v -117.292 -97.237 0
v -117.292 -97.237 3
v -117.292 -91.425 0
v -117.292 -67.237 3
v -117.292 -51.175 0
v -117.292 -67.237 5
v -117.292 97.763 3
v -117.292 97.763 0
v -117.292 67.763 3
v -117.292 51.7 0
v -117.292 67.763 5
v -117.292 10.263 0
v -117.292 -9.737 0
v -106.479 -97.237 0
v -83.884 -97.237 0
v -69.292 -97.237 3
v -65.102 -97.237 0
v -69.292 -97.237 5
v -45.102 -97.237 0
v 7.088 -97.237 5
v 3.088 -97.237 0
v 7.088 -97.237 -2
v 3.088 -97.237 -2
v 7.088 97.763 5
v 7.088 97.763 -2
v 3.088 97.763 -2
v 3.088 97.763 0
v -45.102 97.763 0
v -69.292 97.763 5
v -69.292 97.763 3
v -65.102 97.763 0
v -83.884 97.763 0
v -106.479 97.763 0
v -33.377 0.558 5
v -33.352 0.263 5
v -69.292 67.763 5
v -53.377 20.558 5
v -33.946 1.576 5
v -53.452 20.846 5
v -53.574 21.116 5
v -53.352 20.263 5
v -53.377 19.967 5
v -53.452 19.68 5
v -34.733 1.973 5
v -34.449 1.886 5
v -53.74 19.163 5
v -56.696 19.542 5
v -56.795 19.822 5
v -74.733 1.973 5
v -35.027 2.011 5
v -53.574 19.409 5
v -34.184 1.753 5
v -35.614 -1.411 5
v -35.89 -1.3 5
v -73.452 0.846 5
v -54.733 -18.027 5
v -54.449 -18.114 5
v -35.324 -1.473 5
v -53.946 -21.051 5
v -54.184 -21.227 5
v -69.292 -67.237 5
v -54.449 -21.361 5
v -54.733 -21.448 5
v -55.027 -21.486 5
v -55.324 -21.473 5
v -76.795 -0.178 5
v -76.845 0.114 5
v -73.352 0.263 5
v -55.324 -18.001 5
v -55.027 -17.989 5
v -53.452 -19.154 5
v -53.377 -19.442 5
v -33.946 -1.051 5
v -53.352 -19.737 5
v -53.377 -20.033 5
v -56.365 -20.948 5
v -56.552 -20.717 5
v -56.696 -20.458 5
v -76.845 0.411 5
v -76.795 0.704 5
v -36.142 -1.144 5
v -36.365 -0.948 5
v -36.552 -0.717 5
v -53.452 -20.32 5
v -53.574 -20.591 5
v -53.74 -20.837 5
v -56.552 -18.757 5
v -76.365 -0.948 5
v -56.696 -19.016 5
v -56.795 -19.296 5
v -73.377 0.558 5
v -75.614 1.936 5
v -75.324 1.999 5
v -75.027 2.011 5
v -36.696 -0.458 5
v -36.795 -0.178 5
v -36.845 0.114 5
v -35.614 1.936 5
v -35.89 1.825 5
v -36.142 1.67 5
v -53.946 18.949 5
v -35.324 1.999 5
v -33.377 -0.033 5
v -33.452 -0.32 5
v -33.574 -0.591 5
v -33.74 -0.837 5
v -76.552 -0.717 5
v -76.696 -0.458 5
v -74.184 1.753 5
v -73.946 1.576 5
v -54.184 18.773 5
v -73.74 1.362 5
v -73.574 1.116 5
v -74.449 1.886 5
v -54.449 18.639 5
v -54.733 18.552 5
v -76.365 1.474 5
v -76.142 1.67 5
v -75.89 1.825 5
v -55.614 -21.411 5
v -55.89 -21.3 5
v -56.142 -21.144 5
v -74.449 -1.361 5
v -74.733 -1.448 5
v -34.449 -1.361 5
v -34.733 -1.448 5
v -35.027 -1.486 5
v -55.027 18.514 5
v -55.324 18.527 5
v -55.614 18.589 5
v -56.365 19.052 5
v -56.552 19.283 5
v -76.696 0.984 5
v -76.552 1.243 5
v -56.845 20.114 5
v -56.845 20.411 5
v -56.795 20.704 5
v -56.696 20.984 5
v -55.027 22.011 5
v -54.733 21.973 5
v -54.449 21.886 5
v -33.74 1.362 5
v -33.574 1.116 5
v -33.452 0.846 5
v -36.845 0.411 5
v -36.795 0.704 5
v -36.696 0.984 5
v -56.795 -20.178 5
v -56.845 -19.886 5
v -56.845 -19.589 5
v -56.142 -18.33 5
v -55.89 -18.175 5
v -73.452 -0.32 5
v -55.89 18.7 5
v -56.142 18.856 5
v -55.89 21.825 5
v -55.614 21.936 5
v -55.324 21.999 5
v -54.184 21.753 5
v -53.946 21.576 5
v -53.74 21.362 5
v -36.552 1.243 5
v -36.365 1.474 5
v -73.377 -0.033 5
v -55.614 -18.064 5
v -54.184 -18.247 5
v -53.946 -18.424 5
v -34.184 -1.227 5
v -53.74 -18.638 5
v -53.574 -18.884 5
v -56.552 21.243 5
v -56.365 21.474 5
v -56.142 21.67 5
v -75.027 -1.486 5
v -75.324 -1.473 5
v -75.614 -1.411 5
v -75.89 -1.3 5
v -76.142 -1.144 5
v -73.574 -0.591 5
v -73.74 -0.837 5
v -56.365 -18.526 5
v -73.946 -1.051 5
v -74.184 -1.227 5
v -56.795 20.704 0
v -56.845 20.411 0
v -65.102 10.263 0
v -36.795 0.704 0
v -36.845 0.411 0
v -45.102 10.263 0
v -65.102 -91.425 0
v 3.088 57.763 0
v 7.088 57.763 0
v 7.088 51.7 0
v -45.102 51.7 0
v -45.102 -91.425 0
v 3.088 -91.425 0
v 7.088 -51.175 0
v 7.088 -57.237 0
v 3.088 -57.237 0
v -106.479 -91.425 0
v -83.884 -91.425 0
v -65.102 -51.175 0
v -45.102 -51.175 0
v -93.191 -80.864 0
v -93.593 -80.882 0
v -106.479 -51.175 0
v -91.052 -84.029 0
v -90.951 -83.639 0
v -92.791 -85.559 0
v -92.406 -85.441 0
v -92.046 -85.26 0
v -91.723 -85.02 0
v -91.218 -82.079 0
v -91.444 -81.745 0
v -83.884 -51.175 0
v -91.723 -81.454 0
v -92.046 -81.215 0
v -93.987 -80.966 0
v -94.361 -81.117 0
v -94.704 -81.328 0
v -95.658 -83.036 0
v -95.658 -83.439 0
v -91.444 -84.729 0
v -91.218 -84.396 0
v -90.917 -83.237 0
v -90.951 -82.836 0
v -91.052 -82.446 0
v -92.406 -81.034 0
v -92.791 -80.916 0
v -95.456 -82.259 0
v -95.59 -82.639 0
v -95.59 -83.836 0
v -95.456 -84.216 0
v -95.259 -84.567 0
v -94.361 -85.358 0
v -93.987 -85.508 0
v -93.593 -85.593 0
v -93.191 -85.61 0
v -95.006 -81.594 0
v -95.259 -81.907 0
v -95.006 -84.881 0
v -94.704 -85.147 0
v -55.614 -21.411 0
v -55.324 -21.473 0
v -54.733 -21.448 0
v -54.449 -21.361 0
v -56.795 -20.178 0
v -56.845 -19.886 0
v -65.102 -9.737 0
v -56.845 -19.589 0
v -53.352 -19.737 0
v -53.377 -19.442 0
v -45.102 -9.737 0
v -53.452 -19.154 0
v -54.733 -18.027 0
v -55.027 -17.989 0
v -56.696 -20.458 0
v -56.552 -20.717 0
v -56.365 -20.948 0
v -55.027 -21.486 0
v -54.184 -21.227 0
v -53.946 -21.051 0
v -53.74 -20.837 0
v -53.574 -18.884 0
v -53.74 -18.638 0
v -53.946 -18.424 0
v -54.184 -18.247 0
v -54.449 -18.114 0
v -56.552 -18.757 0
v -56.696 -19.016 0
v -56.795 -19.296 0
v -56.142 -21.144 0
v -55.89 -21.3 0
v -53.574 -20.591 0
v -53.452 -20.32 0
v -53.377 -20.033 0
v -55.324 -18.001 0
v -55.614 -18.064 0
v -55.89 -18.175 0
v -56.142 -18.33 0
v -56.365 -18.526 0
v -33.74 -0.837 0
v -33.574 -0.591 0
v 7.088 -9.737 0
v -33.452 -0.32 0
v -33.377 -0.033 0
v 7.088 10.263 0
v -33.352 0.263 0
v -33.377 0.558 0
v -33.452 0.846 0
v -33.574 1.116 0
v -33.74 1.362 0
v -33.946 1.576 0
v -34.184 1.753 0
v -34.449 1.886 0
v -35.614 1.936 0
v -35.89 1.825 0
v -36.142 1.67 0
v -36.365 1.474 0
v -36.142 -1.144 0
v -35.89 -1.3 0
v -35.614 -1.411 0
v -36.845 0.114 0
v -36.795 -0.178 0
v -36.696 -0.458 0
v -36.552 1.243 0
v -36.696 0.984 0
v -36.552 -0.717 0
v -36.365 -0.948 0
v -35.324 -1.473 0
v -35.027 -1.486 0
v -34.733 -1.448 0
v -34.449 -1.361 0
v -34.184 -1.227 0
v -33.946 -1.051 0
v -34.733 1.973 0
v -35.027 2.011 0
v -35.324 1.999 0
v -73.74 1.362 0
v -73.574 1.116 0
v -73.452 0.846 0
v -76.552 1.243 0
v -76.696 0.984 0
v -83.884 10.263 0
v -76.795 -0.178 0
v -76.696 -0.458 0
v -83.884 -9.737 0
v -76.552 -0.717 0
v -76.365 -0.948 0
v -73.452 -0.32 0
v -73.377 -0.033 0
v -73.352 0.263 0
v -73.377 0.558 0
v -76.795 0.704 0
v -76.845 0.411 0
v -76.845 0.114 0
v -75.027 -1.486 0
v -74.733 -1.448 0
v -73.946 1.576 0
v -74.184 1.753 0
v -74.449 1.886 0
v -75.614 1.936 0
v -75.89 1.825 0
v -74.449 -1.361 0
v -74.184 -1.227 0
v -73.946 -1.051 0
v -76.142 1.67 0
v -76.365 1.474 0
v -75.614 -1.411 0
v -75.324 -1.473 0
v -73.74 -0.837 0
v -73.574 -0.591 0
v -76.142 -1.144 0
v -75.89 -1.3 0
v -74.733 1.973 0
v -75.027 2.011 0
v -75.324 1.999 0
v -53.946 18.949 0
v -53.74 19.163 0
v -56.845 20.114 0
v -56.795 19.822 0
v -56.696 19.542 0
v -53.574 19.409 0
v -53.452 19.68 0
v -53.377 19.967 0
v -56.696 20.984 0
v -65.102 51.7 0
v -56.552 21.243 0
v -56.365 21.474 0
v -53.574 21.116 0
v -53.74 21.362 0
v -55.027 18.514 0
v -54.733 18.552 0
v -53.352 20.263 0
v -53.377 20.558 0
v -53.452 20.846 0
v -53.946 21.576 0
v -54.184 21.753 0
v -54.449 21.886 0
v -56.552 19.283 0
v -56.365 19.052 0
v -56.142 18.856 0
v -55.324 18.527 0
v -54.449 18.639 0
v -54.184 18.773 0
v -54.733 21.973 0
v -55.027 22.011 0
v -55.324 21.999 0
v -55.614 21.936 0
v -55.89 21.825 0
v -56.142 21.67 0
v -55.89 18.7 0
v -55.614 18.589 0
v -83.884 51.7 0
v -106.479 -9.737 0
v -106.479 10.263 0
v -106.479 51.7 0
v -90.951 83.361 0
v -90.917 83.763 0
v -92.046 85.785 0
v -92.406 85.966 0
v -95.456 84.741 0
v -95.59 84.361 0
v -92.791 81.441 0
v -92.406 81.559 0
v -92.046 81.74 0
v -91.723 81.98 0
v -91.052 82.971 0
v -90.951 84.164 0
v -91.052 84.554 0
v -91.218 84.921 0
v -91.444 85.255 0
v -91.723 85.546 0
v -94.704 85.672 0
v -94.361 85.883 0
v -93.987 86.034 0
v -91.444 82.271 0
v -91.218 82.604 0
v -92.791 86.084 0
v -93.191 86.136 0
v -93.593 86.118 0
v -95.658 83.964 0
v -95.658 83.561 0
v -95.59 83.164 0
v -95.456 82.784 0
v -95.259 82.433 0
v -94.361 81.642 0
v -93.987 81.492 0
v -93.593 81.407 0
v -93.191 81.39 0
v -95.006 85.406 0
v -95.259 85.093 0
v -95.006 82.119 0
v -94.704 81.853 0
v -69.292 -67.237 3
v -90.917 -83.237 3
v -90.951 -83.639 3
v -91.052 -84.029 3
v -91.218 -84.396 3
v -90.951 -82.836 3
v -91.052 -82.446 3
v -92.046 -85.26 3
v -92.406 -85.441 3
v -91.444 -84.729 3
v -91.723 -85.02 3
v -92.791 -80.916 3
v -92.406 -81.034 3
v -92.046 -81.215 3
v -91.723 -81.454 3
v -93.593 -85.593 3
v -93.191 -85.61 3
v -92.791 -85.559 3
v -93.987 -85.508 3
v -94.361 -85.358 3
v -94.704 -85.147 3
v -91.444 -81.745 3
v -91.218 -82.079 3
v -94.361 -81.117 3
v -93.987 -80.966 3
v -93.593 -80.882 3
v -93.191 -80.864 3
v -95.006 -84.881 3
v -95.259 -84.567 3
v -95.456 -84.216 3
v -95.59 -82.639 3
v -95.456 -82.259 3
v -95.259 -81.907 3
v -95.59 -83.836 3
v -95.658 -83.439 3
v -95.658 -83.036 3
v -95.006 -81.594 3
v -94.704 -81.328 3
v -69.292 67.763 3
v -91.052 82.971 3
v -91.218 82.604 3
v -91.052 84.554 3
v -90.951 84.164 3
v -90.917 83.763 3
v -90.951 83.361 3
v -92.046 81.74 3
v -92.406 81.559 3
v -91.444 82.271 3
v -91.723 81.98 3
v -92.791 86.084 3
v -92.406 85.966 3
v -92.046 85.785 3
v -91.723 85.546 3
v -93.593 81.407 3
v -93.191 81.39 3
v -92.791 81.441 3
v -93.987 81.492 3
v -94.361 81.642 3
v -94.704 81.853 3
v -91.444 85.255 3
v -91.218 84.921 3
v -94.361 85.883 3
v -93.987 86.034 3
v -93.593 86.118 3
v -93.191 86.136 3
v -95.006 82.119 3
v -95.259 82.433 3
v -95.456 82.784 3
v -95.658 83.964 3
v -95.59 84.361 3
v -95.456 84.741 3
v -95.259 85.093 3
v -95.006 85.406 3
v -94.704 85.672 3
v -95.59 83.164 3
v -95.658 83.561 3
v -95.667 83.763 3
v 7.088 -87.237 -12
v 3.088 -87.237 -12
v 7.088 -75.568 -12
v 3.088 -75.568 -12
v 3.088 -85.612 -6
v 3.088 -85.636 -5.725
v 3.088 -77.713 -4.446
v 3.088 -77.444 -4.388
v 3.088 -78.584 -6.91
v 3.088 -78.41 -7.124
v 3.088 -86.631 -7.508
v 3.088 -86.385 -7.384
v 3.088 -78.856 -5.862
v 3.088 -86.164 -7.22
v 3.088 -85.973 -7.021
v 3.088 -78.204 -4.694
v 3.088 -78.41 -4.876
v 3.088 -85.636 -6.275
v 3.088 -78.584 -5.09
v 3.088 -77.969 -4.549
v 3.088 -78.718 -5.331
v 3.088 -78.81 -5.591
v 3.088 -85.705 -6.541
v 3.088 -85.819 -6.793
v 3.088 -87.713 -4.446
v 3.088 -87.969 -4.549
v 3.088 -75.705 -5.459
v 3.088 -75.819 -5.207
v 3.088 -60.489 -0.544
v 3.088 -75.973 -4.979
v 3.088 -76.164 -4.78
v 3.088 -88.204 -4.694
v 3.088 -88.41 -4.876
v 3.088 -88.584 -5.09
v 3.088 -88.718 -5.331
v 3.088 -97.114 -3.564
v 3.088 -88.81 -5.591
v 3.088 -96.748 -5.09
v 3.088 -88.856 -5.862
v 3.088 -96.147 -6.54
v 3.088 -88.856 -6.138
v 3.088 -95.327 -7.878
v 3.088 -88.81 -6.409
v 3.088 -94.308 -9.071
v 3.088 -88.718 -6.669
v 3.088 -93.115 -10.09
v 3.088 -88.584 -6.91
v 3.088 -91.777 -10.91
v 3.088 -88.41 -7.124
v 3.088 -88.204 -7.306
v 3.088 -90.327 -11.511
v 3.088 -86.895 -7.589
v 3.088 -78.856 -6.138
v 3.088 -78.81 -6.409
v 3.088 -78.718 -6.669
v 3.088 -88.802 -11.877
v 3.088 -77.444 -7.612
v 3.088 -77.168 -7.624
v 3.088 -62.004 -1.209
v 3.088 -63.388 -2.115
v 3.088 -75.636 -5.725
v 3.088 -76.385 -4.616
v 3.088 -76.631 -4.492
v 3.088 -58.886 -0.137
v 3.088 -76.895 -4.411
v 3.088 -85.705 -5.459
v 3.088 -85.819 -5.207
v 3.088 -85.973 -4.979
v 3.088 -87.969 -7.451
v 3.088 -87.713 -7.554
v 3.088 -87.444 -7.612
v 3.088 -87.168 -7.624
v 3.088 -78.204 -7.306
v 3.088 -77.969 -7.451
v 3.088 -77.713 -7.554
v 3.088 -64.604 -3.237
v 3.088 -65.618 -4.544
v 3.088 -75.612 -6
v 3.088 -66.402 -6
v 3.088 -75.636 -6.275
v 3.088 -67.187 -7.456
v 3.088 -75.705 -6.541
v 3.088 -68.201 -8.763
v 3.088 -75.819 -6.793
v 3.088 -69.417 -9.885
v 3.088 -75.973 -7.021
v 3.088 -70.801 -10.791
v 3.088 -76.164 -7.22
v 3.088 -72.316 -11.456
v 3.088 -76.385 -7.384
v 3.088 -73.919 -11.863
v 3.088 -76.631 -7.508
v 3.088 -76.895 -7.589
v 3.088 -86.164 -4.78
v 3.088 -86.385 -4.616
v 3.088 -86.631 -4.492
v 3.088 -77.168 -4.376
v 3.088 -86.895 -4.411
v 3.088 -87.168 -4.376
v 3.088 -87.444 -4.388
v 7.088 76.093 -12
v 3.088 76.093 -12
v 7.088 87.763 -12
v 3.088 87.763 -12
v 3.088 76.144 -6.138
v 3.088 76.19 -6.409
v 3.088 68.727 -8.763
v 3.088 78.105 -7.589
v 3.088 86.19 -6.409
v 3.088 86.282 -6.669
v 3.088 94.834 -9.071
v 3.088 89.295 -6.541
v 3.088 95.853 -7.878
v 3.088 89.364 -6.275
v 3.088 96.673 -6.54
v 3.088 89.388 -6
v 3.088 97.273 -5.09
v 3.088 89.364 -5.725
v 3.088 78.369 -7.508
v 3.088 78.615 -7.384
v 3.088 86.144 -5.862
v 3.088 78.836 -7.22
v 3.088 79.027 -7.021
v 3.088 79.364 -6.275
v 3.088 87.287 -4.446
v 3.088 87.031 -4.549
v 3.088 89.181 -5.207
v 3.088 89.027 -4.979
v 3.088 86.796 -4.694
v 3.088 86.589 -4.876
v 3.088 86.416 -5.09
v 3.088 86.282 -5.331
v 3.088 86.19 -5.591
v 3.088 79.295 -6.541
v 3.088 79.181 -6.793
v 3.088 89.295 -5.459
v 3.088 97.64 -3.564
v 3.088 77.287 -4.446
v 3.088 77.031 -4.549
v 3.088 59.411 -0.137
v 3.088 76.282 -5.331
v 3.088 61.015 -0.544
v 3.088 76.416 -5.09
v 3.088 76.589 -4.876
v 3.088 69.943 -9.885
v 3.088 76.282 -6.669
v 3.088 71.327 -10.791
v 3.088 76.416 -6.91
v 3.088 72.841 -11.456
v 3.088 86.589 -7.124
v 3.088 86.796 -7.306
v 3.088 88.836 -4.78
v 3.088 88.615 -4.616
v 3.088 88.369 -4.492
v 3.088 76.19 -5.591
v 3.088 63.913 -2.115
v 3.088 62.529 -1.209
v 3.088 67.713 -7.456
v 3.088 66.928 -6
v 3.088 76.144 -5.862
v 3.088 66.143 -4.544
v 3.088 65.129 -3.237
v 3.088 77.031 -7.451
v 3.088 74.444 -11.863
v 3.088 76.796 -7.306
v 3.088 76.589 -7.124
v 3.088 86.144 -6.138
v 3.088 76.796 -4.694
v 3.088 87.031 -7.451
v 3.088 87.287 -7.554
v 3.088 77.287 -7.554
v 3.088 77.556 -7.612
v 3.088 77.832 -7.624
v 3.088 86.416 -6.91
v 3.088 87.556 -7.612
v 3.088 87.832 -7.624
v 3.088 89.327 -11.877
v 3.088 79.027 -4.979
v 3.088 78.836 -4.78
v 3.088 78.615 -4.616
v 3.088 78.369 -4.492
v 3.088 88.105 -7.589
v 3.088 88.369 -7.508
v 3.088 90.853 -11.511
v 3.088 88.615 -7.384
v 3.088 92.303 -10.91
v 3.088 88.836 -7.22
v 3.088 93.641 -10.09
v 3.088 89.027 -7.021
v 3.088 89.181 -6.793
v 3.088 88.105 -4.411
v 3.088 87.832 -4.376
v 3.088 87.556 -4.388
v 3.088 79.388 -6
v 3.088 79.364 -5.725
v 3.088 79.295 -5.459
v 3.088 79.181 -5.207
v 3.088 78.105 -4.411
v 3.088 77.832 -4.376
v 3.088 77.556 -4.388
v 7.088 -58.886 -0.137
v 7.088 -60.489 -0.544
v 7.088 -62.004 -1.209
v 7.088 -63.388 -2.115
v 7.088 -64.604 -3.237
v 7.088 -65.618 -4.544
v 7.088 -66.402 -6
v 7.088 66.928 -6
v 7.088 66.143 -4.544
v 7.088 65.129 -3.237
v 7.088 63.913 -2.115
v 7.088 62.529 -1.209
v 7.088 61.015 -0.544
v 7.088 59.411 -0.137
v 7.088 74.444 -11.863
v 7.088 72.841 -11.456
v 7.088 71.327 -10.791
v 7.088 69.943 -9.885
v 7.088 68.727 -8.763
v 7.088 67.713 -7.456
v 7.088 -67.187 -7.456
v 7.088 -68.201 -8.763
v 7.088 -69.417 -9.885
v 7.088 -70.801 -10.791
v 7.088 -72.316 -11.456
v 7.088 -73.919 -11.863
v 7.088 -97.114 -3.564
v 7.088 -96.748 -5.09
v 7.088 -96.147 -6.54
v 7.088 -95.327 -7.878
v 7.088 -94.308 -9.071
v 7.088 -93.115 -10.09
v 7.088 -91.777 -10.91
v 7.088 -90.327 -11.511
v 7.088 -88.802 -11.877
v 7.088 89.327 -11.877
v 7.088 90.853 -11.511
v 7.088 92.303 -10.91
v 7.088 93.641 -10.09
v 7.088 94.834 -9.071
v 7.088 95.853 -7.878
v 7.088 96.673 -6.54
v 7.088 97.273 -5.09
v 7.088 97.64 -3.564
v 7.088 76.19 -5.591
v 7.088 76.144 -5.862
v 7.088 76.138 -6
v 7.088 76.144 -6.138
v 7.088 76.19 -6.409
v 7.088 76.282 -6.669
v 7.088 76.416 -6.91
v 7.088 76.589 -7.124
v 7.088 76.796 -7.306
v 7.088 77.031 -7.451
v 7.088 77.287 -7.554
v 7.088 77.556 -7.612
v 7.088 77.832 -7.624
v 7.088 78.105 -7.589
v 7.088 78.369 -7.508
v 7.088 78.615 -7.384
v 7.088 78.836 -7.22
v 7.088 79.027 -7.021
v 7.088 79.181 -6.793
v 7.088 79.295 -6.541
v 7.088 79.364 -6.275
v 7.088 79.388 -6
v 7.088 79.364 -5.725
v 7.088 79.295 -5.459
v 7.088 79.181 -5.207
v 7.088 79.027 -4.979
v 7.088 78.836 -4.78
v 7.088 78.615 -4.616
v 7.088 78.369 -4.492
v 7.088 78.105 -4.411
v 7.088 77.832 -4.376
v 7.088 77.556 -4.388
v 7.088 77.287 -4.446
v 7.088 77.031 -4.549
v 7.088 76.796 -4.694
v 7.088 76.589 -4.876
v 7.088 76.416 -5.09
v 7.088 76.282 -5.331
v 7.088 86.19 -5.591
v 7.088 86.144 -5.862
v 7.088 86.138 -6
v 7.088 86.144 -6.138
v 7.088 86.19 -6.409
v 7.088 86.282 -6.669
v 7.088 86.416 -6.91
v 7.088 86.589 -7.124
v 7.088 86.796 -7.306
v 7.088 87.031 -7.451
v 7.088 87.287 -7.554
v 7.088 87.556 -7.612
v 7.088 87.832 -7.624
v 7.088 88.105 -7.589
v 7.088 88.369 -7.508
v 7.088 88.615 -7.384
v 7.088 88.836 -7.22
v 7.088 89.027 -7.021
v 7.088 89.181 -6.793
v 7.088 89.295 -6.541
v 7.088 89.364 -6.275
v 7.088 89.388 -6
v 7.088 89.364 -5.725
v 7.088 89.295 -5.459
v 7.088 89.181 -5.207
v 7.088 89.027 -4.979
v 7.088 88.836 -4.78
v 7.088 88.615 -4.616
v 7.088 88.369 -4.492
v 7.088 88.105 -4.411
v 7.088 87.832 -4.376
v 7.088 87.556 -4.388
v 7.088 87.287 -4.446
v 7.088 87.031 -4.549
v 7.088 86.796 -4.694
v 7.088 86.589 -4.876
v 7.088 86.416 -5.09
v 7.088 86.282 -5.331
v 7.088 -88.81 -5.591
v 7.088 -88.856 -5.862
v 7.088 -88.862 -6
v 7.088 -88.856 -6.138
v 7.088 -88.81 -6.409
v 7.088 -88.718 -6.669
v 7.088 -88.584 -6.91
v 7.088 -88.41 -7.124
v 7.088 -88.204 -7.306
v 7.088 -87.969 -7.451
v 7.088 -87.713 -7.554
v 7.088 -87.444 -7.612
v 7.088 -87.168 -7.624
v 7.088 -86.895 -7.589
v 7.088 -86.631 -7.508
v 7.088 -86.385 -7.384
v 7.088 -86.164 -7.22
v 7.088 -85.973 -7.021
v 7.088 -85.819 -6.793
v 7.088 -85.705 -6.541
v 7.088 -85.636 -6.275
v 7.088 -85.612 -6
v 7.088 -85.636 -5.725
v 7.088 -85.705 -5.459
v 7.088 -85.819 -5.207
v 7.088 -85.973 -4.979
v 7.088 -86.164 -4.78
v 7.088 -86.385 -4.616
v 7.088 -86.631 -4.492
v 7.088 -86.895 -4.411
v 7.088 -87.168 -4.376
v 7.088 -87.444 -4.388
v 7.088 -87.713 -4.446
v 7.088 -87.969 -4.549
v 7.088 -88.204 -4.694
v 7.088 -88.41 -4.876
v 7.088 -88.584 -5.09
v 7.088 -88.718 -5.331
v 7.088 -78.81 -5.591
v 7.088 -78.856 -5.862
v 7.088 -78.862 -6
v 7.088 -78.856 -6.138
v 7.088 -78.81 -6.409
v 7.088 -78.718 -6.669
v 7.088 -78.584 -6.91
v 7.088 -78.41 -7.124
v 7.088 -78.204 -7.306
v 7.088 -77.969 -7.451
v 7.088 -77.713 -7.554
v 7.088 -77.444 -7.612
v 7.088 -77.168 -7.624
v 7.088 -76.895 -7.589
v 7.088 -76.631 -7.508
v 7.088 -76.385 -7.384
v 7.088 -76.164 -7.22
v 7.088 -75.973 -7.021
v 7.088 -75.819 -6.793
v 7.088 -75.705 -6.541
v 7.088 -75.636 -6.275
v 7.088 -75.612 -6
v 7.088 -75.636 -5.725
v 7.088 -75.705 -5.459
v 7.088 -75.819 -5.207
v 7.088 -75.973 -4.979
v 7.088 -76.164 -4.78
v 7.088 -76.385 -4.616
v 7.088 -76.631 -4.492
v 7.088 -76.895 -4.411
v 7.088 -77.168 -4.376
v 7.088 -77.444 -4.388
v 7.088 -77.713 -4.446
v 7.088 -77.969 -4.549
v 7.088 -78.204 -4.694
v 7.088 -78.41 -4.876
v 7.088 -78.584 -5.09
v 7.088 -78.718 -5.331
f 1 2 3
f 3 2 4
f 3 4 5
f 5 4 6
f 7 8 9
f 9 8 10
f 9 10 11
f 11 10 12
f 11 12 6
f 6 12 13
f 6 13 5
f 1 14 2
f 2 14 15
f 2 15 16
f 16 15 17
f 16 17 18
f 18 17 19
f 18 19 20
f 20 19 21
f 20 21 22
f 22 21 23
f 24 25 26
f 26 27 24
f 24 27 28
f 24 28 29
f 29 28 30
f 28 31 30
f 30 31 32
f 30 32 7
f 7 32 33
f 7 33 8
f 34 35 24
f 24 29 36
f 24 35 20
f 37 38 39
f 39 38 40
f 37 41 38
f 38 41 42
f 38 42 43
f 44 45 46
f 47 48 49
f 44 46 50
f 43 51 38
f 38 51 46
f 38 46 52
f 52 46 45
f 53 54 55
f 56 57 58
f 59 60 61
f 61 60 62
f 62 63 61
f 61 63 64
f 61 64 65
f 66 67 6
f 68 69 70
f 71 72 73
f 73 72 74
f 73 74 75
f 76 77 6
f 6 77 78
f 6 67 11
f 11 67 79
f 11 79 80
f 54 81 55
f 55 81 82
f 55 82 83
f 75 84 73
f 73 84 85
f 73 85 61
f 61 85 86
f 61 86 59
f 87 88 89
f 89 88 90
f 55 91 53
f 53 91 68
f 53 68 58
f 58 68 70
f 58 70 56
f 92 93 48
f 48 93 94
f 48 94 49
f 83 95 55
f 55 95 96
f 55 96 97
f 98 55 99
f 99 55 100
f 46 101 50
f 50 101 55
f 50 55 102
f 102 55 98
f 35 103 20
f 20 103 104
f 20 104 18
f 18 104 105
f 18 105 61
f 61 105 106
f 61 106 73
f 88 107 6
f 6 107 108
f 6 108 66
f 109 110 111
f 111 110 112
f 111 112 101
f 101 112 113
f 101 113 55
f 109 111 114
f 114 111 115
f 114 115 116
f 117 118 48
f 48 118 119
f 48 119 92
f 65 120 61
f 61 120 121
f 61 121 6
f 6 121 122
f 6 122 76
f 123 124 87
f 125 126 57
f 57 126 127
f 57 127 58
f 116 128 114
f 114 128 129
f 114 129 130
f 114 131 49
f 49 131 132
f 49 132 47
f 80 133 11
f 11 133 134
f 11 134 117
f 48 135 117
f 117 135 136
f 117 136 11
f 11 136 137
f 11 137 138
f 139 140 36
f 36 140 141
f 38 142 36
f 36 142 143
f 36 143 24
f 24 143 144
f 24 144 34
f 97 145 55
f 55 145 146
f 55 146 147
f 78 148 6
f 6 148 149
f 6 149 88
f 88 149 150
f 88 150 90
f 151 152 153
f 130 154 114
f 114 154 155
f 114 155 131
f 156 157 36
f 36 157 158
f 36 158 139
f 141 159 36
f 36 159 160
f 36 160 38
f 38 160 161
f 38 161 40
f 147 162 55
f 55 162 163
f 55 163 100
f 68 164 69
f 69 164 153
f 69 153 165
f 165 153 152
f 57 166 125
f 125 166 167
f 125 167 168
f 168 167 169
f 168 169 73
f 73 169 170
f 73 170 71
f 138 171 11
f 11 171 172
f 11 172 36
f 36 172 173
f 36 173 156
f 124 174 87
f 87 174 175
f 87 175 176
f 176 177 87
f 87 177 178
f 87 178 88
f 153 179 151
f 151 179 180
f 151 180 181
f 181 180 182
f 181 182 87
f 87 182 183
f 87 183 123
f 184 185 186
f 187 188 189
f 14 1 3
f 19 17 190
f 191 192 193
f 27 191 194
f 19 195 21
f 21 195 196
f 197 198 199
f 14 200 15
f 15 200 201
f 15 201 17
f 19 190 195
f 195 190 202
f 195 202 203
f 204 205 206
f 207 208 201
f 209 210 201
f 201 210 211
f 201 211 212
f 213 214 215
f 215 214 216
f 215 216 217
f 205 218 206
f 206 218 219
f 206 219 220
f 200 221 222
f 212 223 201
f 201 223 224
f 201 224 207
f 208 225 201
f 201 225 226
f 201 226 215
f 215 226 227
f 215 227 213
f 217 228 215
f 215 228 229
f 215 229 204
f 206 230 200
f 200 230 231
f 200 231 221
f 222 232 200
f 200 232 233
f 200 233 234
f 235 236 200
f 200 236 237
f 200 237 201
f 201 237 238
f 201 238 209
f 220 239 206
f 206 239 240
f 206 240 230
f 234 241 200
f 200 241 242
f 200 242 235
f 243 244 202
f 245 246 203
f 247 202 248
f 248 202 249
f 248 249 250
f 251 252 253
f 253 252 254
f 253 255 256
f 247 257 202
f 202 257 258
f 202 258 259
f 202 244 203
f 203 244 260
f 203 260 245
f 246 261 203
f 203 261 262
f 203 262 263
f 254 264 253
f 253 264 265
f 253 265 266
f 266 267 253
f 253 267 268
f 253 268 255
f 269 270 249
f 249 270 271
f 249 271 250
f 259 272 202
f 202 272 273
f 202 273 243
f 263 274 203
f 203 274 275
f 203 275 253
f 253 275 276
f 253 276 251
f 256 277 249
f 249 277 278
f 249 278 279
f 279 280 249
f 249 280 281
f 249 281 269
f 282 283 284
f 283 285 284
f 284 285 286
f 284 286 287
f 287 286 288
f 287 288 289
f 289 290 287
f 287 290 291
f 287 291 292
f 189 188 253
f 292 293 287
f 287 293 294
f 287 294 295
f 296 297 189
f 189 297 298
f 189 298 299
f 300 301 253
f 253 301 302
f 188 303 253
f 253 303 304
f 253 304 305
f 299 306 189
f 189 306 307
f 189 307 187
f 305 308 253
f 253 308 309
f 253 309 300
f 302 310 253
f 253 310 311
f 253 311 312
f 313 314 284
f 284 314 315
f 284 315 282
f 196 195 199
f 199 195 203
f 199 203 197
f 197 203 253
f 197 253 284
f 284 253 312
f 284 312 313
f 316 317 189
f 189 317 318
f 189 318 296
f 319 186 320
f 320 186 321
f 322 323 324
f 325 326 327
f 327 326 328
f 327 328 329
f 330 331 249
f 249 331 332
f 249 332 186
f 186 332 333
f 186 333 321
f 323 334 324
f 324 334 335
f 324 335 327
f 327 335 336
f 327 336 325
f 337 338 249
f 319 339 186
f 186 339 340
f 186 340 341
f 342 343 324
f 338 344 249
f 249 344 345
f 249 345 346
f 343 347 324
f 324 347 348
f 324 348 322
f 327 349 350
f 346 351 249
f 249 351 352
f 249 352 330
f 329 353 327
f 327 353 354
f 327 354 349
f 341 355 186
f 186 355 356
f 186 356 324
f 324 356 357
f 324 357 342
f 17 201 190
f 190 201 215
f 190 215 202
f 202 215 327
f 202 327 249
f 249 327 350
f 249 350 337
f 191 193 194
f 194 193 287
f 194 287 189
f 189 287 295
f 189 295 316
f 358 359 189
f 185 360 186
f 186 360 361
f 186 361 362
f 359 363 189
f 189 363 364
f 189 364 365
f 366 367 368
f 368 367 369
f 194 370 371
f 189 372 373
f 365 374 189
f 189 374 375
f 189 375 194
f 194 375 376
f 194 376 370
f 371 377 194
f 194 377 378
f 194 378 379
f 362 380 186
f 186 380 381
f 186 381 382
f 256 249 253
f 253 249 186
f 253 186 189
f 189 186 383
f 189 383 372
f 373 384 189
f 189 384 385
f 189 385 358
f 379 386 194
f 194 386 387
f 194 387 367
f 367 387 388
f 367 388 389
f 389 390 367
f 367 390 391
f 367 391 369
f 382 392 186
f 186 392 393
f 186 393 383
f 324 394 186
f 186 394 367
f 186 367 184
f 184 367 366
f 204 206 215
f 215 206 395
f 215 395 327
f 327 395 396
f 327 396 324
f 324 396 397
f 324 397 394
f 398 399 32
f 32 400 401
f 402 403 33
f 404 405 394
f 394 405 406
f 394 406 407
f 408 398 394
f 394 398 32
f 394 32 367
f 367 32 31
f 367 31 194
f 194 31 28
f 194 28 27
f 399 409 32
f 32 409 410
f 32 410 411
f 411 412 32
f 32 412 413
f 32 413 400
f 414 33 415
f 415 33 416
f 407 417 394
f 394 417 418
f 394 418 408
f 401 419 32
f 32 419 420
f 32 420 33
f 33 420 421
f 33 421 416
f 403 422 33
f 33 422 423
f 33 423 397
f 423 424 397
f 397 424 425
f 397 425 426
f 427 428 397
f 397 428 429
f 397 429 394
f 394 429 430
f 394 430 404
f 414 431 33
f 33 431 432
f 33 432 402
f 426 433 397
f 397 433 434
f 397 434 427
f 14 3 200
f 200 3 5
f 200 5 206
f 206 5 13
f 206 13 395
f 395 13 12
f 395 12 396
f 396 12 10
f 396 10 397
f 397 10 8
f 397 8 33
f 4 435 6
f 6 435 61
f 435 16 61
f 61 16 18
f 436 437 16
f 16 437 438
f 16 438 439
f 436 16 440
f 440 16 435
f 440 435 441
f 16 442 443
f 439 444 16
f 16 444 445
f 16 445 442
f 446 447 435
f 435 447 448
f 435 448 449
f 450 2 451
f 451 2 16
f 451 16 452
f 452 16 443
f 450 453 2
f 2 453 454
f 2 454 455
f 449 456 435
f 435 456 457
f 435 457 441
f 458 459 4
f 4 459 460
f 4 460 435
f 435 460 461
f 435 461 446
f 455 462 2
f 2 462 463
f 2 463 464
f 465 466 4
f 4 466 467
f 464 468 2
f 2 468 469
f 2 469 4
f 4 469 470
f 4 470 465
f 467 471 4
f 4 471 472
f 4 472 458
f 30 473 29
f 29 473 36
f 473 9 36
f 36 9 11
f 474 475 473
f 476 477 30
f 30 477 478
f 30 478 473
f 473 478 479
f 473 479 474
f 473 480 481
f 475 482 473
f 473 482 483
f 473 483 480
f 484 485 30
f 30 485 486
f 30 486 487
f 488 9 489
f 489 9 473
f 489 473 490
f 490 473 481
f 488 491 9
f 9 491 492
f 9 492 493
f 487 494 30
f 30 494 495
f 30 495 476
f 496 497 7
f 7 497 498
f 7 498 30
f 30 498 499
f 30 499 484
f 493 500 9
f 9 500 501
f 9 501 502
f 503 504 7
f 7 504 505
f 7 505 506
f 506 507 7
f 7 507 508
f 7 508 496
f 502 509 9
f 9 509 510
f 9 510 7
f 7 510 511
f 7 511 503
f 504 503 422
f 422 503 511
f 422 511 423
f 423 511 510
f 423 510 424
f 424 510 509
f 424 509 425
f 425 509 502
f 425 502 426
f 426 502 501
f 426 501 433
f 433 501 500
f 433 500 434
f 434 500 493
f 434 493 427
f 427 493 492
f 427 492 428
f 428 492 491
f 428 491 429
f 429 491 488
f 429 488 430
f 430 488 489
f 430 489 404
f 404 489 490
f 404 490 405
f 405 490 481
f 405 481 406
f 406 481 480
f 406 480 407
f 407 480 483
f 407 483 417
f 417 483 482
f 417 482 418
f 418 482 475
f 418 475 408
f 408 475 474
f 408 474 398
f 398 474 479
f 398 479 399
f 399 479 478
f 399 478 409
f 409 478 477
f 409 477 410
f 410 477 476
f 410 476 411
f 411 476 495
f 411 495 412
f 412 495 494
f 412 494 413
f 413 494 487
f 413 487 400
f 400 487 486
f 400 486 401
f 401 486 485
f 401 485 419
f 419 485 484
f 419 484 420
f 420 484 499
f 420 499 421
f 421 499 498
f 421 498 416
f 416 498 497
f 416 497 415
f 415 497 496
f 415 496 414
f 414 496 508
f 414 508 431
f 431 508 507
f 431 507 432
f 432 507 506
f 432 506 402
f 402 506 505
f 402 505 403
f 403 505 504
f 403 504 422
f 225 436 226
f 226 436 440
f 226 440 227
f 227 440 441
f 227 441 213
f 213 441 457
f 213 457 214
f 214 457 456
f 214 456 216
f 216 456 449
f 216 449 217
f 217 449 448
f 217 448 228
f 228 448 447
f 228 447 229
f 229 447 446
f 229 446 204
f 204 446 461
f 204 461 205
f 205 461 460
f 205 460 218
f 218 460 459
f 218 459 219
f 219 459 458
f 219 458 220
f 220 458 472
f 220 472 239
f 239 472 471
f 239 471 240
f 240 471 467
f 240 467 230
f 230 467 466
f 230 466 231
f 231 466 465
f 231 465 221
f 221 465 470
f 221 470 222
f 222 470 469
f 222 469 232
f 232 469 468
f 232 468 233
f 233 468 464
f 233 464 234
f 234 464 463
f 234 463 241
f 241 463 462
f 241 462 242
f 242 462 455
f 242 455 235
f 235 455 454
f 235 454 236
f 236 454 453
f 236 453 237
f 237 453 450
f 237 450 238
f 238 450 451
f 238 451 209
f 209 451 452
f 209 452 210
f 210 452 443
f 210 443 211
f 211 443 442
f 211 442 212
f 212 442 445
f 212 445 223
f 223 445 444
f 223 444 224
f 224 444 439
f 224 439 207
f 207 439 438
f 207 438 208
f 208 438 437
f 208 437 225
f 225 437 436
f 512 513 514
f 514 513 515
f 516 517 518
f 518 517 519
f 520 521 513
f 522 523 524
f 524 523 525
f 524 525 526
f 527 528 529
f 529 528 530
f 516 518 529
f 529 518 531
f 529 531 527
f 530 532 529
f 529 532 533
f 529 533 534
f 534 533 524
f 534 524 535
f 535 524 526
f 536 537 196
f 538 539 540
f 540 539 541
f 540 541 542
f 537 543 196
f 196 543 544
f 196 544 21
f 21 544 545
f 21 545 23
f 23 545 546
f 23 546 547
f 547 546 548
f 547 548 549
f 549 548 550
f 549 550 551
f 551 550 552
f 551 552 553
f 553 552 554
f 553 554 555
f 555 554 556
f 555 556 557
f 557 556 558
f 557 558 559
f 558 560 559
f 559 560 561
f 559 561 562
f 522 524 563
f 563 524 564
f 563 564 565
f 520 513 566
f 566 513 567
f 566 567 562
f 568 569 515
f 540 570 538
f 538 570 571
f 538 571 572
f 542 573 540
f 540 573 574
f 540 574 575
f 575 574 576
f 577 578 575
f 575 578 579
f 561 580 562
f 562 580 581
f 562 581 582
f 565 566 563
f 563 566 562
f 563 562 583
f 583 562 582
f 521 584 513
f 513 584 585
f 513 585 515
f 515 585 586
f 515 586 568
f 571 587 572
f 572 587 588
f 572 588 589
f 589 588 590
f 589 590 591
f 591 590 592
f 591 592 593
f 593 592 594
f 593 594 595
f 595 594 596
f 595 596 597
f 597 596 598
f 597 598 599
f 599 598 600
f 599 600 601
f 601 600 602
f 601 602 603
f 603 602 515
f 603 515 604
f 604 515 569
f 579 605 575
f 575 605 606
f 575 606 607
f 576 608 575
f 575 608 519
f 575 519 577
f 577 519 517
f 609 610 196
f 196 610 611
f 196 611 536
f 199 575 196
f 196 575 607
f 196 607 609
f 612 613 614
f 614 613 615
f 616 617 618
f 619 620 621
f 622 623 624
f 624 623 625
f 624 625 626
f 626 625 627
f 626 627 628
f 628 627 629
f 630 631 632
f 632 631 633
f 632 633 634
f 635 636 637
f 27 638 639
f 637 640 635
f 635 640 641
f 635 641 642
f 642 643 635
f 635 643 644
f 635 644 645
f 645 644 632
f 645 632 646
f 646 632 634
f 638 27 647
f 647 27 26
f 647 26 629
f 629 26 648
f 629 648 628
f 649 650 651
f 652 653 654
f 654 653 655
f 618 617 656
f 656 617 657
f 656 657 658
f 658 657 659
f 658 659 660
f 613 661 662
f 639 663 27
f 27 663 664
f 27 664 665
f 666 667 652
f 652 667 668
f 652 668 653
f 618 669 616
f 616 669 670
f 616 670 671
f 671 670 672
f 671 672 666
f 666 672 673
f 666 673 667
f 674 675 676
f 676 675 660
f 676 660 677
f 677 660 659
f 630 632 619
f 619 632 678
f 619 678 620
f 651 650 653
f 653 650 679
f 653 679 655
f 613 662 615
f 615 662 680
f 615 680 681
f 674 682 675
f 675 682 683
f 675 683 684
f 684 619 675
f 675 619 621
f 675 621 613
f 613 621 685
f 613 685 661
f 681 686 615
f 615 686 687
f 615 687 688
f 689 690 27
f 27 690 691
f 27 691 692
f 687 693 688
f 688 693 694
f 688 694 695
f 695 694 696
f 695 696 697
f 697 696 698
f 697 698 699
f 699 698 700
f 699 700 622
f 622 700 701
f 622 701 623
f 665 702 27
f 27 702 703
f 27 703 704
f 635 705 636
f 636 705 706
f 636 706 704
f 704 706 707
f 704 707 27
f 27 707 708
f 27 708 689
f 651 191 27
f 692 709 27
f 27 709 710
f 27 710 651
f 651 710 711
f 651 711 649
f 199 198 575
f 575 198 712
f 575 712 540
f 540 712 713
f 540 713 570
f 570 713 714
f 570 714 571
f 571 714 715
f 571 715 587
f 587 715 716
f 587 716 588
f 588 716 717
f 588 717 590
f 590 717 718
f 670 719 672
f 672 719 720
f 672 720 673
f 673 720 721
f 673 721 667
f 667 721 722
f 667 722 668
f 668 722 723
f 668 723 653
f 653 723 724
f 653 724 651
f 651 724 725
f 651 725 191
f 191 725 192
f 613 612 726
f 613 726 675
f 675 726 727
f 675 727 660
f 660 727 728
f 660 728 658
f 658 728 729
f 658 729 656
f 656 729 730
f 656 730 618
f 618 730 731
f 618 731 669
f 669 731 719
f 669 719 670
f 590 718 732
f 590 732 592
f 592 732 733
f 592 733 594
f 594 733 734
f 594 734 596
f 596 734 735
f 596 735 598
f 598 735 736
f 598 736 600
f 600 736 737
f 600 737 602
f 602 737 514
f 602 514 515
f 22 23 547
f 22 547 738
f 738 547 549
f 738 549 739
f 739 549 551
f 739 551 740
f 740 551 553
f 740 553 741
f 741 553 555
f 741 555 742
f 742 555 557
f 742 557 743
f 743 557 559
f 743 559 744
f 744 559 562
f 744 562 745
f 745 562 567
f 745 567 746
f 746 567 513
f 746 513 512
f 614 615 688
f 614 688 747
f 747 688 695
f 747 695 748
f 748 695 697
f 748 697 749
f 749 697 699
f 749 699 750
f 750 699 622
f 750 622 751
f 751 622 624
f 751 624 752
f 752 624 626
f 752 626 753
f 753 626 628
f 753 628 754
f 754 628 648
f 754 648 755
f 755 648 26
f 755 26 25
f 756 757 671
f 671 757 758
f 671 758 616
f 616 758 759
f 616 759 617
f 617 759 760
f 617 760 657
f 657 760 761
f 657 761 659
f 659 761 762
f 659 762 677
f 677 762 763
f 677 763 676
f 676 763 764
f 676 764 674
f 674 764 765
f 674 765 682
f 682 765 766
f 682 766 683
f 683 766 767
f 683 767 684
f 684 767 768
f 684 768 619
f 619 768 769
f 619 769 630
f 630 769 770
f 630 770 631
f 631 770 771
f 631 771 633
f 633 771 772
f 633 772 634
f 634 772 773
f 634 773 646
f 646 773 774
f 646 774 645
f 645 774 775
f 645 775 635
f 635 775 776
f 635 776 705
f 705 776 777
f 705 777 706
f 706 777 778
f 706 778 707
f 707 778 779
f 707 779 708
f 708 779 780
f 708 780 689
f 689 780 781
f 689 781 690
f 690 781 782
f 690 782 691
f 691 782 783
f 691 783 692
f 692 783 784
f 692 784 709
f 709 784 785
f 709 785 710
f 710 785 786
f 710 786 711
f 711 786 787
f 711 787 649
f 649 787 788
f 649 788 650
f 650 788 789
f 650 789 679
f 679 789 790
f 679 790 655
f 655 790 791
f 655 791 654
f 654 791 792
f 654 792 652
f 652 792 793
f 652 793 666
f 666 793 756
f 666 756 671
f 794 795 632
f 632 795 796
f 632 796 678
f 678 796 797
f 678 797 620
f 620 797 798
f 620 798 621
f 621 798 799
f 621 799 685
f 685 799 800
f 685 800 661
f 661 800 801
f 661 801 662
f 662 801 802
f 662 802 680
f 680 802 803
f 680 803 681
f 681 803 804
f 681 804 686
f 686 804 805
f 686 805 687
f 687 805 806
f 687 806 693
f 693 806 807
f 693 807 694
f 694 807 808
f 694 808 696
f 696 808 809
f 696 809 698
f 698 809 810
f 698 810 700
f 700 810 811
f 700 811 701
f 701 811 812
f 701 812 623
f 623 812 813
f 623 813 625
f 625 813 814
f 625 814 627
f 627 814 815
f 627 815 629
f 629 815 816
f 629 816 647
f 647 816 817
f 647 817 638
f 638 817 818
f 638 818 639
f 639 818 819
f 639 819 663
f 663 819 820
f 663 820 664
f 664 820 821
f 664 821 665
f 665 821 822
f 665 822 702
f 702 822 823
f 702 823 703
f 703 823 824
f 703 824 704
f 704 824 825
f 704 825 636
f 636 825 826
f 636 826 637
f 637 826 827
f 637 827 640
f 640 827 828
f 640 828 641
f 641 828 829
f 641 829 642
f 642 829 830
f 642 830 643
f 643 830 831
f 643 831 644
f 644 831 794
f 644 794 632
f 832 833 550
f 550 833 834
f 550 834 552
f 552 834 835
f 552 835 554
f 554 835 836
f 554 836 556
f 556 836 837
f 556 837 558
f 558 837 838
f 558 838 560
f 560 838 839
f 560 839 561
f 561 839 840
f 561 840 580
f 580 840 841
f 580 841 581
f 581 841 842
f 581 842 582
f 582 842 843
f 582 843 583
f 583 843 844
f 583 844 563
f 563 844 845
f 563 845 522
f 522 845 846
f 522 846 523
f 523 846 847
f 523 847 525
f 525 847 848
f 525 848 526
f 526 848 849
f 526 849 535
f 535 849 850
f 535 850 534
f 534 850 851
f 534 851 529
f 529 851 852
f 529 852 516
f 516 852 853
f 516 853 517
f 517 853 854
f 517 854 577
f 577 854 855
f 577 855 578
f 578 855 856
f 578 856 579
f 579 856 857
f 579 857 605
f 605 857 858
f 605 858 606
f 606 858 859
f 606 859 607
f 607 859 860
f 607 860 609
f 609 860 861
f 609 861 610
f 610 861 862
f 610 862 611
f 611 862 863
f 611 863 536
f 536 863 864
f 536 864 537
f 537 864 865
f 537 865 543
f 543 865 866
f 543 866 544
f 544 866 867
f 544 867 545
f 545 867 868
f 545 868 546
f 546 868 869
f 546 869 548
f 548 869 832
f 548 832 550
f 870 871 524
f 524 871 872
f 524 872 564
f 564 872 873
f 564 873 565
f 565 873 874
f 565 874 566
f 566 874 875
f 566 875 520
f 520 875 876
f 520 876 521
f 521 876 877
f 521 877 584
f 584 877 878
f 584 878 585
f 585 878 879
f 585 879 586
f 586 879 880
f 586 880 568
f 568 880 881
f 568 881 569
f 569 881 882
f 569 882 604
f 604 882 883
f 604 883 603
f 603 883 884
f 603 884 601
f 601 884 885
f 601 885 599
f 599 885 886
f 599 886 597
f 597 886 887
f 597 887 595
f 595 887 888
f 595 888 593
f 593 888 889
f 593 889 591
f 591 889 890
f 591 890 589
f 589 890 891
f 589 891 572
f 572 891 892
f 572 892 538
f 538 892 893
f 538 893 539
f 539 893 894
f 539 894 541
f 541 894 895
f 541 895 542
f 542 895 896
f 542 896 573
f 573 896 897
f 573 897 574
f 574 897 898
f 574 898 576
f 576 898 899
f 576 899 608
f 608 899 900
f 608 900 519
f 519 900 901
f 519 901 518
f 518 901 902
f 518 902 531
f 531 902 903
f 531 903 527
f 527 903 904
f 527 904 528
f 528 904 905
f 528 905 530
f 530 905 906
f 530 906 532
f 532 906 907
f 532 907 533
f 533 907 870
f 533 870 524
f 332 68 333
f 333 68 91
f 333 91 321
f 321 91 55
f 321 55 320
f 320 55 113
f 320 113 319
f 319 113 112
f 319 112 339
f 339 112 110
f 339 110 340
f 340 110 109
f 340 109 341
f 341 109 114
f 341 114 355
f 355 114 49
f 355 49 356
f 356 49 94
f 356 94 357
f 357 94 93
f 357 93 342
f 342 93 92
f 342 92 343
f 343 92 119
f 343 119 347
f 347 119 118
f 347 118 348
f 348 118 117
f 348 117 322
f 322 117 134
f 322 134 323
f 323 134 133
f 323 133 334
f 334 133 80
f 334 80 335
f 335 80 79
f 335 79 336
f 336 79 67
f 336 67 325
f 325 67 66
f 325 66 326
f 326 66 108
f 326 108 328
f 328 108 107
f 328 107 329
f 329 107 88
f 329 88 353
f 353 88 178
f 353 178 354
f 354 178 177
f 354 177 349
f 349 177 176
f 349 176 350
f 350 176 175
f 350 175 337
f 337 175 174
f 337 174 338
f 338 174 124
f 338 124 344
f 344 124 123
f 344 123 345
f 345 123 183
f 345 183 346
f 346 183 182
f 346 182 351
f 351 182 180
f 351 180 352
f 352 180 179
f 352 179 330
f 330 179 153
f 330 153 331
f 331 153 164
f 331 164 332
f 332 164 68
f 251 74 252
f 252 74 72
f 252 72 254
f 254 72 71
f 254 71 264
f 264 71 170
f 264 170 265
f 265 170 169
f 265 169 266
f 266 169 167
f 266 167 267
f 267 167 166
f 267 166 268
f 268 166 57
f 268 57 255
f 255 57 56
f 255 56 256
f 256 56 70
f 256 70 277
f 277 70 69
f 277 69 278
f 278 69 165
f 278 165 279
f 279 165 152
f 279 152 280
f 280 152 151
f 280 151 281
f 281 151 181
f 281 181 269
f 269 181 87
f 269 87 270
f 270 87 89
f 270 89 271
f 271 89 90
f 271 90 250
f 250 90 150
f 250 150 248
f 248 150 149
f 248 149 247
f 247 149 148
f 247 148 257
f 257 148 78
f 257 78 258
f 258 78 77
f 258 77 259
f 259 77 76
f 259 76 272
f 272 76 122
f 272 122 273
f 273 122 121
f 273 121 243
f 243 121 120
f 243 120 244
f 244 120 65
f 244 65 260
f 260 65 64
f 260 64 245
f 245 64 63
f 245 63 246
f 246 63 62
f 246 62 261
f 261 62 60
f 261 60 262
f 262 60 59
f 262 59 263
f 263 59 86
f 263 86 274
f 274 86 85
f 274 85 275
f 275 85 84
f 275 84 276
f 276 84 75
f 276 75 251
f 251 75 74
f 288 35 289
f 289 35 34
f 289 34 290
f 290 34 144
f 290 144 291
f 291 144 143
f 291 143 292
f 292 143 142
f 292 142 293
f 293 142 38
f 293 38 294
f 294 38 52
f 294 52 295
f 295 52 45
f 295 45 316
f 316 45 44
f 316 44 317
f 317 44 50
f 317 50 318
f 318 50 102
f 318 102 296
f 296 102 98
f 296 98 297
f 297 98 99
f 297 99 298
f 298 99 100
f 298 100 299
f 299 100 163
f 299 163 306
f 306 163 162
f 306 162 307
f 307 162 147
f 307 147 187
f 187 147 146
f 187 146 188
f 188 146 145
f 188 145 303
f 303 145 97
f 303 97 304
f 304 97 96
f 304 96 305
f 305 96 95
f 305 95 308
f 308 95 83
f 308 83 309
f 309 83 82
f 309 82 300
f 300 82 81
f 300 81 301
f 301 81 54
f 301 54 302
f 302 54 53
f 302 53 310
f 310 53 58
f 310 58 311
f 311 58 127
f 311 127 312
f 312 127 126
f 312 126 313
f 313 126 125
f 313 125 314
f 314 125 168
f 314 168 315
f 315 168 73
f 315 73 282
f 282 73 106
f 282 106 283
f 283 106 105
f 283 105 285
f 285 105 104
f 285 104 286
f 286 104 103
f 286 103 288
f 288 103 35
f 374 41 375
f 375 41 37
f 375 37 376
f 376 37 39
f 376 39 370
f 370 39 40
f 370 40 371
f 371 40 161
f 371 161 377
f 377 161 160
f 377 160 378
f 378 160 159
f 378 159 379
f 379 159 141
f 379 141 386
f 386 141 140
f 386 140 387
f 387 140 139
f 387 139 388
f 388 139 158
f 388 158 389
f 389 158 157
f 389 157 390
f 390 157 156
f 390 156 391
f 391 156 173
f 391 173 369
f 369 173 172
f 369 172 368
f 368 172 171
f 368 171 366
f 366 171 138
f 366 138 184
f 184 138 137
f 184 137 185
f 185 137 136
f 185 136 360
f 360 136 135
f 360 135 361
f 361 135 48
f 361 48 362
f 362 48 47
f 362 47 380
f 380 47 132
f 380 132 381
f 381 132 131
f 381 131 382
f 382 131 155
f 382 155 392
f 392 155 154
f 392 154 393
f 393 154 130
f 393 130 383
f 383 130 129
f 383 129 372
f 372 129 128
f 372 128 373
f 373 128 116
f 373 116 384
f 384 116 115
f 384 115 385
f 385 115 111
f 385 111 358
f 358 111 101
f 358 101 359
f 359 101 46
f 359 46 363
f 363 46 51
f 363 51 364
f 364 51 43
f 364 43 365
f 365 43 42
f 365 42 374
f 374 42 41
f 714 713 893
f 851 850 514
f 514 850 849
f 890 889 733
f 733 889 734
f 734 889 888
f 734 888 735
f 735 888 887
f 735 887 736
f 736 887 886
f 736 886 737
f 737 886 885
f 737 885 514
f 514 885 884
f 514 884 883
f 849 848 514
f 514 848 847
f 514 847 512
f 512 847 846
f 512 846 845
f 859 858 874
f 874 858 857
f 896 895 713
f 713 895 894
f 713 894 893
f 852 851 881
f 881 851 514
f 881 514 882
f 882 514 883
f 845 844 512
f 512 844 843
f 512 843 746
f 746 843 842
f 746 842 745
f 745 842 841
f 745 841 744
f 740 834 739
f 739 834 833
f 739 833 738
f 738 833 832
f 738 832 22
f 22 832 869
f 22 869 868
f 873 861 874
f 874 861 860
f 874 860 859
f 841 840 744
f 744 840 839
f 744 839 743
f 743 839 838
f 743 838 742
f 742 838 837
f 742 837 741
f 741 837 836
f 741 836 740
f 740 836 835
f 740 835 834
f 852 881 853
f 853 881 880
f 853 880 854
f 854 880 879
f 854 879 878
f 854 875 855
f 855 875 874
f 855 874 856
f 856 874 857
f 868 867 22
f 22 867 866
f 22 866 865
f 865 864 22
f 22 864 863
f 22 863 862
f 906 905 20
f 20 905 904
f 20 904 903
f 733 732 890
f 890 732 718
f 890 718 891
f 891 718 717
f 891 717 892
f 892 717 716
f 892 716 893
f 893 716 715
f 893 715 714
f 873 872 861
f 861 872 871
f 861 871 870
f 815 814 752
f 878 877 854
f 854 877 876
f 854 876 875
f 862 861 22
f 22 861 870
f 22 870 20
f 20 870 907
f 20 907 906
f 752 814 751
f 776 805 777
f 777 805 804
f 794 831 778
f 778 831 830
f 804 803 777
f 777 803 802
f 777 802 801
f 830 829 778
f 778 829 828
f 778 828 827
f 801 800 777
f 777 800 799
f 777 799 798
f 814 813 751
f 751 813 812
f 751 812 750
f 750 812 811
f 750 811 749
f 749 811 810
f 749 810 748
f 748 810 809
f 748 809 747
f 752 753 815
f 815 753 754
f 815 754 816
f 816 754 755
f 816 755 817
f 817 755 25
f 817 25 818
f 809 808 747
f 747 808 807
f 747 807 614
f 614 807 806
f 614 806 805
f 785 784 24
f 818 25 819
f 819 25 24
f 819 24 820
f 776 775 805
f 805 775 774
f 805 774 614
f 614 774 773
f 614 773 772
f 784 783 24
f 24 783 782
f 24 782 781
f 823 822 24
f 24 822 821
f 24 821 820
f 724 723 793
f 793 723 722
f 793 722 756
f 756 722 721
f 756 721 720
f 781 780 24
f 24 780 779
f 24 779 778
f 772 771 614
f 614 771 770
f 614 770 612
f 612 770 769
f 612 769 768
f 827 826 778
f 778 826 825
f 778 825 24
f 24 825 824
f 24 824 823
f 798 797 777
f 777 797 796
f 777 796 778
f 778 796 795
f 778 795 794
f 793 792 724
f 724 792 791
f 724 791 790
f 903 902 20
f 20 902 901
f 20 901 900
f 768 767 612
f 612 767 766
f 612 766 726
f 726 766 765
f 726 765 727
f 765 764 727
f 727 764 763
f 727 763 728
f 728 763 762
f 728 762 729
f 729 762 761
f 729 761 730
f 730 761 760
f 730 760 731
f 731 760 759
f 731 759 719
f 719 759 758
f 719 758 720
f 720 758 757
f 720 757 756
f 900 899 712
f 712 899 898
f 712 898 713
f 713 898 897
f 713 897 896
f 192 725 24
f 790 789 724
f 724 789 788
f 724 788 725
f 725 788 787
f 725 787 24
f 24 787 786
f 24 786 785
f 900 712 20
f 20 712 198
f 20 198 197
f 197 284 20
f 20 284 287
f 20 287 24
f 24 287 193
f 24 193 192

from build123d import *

# Parameters (mm, degrees)
CROQUIS1_W                  = 248.76
CROQUIS1_H                  = 195
SALIENTE_EXTRUIR1_DEPTH     = 5
CROQUIS2_W                  = 48
CROQUIS2_H                  = 30
CROQUIS2_W_2                = 30
CORTAR_EXTRUIR1_DEPTH       = 2
CROQUIS3_R                  = 2.375
CORTAR_EXTRUIR2_DEPTH       = 10
CROQUIS4_R                  = 40
SALIENTE_EXTRUIR2_DEPTH     = 206
CROQUIS5_R                  = 12.5
CORTAR_EXTRUIR3_DEPTH       = 10
CROQUIS12_W                 = 12
CROQUIS12_H                 = 30
SALIENTE_EXTRUIR3_DEPTH     = 4
REDONDEO1_R                 = 10
REDONDEO2_R                 = 10
REDONDEO3_R                 = 10
CORTAR_EXTRUIR5_DEPTH       = 262.677217236
CORTAR_EXTRUIR5_DEPTH_BACK  = 262.677217236
CROQUIS13_R                 = 1.625
CORTAR_EXTRUIR7_DEPTH       = 2
CROQUIS16_R                 = 1.75
CORTAR_EXTRUIR9_DEPTH       = 20
CROQUIS17_W                 = 120.38
CROQUIS17_H                 = 213.212791717
CORTAR_EXTRUIR10_DEPTH      = 222
CORTAR_EXTRUIR14_DEPTH      = 165.272498417
CORTAR_EXTRUIR14_DEPTH_BACK = 165.272498417
CROQUIS18_W                 = 124.38
CROQUIS18_H                 = 195


with BuildPart() as part:
    # Croquis1 → Saliente-Extruir1 (new body)
    with BuildSketch(Plane.XY):
        with Locations((7.088293187, 0.26268)):
            Rectangle(CROQUIS1_W, CROQUIS1_H)
    extrude(amount=SALIENTE_EXTRUIR1_DEPTH)

    # Croquis2 → Cortar-Extruir1 (cut)
    with BuildSketch(Plane.XY.offset(5)):
        with Locations((-93.291706813, -82.23732)):
            Rectangle(CROQUIS2_W, CROQUIS2_H)
        with Locations((116.468293187, 82.76268)):
            Rectangle(CROQUIS2_W_2, CROQUIS2_H)
        with Locations((116.468293187, -82.23732)):
            Rectangle(CROQUIS2_W_2, CROQUIS2_H)
        with Locations((-93.291706813, 82.76268)):
            Rectangle(CROQUIS2_W, CROQUIS2_H)
    extrude(amount=-CORTAR_EXTRUIR1_DEPTH, mode=Mode.SUBTRACT)

    # Croquis3 → Cortar-Extruir2 (cut)
    with BuildSketch(Plane.XY.offset(5)):
        with Locations((-93.291706813, 83.76268)):
            Circle(CROQUIS3_R)
        with Locations((-93.291706813, -83.23732)):
            Circle(CROQUIS3_R)
        with Locations((116.468293187, 83.76268)):
            Circle(CROQUIS3_R)
        with Locations((116.468293187, -83.23732)):
            Circle(CROQUIS3_R)
    extrude(amount=-CORTAR_EXTRUIR2_DEPTH, mode=Mode.SUBTRACT)

    # Croquis4 → Saliente-Extruir2 (add)
    with BuildSketch(Plane(origin=(0, 0, 0), x_dir=(-1, 0, 0), z_dir=(0, 0, -1))):
        with Locations(Location((55.101706813, 0.26268, 0), (0, 0, 180))):
            Circle(CROQUIS4_R)
    extrude(amount=SALIENTE_EXTRUIR2_DEPTH)

    # Croquis5 → Cortar-Extruir3 (cut)
    with BuildSketch(Plane(origin=(0, 0, 0), x_dir=(-1, 0, 0), z_dir=(0, 0, -1))):
        with Locations((-76.968293187, 0.26268)):
            Circle(CROQUIS5_R)
    extrude(amount=-CORTAR_EXTRUIR3_DEPTH, mode=Mode.SUBTRACT)

    # Croquis12 → Saliente-Extruir3 (add, symmetric)
    with BuildSketch(Plane(origin=(7.088293187, 0, 0), x_dir=(0, 0, -1), z_dir=(1, 0, 0))):
        with Locations((6, 82.76268)):
            Rectangle(CROQUIS12_W, CROQUIS12_H)
        with Locations((6, -82.23732)):
            Rectangle(CROQUIS12_W, CROQUIS12_H)
    extrude(amount=SALIENTE_EXTRUIR3_DEPTH, both=True)

    # Redondeo1
    redondeo1_edges = [part.edges().sort_by_distance(p)[0] for p in [
        (7.088293187, 67.76268, 0),
        (7.088293187, -67.23732, 0),
    ]]
    fillet(redondeo1_edges, radius=REDONDEO1_R)

    # Redondeo2
    redondeo2_edges = [part.edges().sort_by_distance(p)[0] for p in [
        (7.088293187, 67.76268, -12),
        (7.088293187, -67.23732, -12),
    ]]
    fillet(redondeo2_edges, radius=REDONDEO2_R)

    # Redondeo3
    redondeo3_edges = [part.edges().sort_by_distance(p)[0] for p in [
        (7.088293187, 97.76268, -12),
        (7.088293187, -97.23732, -12),
    ]]
    fillet(redondeo3_edges, radius=REDONDEO3_R)

    # Croquis13 → Cortar-Extruir5 (cut, two sides: drawn at the far end of the back side and taken through both)
    with BuildSketch(Plane(origin=(11.088293187, 0, 0), x_dir=(0, 0, -1), z_dir=(1, 0, 0)).offset(-CORTAR_EXTRUIR5_DEPTH_BACK)):
        with Locations(Location((6, 87.76268, 0), (0, 0, 90))):
            Circle(CROQUIS13_R)
        with Locations(Location((6, 77.76268, 0), (0, 0, 90))):
            Circle(CROQUIS13_R)
        with Locations(Location((6, -77.23732, 0), (0, 0, 90))):
            Circle(CROQUIS13_R)
        with Locations(Location((6, -87.23732, 0), (0, 0, 90))):
            Circle(CROQUIS13_R)
    extrude(amount=CORTAR_EXTRUIR5_DEPTH + CORTAR_EXTRUIR5_DEPTH_BACK, mode=Mode.SUBTRACT)

    # Croquis15 → Cortar-Extruir7 (cut)
    with BuildSketch(Plane.XY.offset(5)):
        Polygon((111.468293187, 67.76268), (131.468293187, 67.76268), (131.468293187, -67.23732), (111.468293187, -67.23732), (111.468293187, -59.48732), (125.218293187, -59.48732), (125.218293187, 60.01268), (111.468293187, 60.01268), align=None)
    extrude(amount=-CORTAR_EXTRUIR7_DEPTH, mode=Mode.SUBTRACT)

    # Croquis16 → Cortar-Extruir9 (cut)
    with BuildSketch(Plane.XY.offset(5)):
        with Locations((-55.101706813, 20.26268)):
            Circle(CROQUIS16_R)
        with Locations((-35.101706813, 0.26268)):
            Circle(CROQUIS16_R)
        with Locations((-55.101706813, -19.73732)):
            Circle(CROQUIS16_R)
        with Locations((-75.101706813, 0.26268)):
            Circle(CROQUIS16_R)
    extrude(amount=-CORTAR_EXTRUIR9_DEPTH, mode=Mode.SUBTRACT)

    # Croquis17 → Cortar-Extruir10 (cut)
    with BuildSketch(Plane.XZ.offset(97.23732)):
        with Locations((-57.101706813, -106.606395859)):
            Rectangle(CROQUIS17_W, CROQUIS17_H)
    extrude(amount=-CORTAR_EXTRUIR10_DEPTH, mode=Mode.SUBTRACT)

    # Croquis18 → Cortar-Extruir14 (cut, two sides: drawn at the far end of the back side and taken through both)
    with BuildSketch(Plane(origin=(0, 0, 0), x_dir=(-1, 0, 0), z_dir=(0, 0, -1)).offset(-CORTAR_EXTRUIR14_DEPTH_BACK)):
        with Locations((-69.278293187, 0.26268)):
            Rectangle(CROQUIS18_W, CROQUIS18_H)
    extrude(amount=CORTAR_EXTRUIR14_DEPTH + CORTAR_EXTRUIR14_DEPTH_BACK, mode=Mode.SUBTRACT)


solid = part.part
